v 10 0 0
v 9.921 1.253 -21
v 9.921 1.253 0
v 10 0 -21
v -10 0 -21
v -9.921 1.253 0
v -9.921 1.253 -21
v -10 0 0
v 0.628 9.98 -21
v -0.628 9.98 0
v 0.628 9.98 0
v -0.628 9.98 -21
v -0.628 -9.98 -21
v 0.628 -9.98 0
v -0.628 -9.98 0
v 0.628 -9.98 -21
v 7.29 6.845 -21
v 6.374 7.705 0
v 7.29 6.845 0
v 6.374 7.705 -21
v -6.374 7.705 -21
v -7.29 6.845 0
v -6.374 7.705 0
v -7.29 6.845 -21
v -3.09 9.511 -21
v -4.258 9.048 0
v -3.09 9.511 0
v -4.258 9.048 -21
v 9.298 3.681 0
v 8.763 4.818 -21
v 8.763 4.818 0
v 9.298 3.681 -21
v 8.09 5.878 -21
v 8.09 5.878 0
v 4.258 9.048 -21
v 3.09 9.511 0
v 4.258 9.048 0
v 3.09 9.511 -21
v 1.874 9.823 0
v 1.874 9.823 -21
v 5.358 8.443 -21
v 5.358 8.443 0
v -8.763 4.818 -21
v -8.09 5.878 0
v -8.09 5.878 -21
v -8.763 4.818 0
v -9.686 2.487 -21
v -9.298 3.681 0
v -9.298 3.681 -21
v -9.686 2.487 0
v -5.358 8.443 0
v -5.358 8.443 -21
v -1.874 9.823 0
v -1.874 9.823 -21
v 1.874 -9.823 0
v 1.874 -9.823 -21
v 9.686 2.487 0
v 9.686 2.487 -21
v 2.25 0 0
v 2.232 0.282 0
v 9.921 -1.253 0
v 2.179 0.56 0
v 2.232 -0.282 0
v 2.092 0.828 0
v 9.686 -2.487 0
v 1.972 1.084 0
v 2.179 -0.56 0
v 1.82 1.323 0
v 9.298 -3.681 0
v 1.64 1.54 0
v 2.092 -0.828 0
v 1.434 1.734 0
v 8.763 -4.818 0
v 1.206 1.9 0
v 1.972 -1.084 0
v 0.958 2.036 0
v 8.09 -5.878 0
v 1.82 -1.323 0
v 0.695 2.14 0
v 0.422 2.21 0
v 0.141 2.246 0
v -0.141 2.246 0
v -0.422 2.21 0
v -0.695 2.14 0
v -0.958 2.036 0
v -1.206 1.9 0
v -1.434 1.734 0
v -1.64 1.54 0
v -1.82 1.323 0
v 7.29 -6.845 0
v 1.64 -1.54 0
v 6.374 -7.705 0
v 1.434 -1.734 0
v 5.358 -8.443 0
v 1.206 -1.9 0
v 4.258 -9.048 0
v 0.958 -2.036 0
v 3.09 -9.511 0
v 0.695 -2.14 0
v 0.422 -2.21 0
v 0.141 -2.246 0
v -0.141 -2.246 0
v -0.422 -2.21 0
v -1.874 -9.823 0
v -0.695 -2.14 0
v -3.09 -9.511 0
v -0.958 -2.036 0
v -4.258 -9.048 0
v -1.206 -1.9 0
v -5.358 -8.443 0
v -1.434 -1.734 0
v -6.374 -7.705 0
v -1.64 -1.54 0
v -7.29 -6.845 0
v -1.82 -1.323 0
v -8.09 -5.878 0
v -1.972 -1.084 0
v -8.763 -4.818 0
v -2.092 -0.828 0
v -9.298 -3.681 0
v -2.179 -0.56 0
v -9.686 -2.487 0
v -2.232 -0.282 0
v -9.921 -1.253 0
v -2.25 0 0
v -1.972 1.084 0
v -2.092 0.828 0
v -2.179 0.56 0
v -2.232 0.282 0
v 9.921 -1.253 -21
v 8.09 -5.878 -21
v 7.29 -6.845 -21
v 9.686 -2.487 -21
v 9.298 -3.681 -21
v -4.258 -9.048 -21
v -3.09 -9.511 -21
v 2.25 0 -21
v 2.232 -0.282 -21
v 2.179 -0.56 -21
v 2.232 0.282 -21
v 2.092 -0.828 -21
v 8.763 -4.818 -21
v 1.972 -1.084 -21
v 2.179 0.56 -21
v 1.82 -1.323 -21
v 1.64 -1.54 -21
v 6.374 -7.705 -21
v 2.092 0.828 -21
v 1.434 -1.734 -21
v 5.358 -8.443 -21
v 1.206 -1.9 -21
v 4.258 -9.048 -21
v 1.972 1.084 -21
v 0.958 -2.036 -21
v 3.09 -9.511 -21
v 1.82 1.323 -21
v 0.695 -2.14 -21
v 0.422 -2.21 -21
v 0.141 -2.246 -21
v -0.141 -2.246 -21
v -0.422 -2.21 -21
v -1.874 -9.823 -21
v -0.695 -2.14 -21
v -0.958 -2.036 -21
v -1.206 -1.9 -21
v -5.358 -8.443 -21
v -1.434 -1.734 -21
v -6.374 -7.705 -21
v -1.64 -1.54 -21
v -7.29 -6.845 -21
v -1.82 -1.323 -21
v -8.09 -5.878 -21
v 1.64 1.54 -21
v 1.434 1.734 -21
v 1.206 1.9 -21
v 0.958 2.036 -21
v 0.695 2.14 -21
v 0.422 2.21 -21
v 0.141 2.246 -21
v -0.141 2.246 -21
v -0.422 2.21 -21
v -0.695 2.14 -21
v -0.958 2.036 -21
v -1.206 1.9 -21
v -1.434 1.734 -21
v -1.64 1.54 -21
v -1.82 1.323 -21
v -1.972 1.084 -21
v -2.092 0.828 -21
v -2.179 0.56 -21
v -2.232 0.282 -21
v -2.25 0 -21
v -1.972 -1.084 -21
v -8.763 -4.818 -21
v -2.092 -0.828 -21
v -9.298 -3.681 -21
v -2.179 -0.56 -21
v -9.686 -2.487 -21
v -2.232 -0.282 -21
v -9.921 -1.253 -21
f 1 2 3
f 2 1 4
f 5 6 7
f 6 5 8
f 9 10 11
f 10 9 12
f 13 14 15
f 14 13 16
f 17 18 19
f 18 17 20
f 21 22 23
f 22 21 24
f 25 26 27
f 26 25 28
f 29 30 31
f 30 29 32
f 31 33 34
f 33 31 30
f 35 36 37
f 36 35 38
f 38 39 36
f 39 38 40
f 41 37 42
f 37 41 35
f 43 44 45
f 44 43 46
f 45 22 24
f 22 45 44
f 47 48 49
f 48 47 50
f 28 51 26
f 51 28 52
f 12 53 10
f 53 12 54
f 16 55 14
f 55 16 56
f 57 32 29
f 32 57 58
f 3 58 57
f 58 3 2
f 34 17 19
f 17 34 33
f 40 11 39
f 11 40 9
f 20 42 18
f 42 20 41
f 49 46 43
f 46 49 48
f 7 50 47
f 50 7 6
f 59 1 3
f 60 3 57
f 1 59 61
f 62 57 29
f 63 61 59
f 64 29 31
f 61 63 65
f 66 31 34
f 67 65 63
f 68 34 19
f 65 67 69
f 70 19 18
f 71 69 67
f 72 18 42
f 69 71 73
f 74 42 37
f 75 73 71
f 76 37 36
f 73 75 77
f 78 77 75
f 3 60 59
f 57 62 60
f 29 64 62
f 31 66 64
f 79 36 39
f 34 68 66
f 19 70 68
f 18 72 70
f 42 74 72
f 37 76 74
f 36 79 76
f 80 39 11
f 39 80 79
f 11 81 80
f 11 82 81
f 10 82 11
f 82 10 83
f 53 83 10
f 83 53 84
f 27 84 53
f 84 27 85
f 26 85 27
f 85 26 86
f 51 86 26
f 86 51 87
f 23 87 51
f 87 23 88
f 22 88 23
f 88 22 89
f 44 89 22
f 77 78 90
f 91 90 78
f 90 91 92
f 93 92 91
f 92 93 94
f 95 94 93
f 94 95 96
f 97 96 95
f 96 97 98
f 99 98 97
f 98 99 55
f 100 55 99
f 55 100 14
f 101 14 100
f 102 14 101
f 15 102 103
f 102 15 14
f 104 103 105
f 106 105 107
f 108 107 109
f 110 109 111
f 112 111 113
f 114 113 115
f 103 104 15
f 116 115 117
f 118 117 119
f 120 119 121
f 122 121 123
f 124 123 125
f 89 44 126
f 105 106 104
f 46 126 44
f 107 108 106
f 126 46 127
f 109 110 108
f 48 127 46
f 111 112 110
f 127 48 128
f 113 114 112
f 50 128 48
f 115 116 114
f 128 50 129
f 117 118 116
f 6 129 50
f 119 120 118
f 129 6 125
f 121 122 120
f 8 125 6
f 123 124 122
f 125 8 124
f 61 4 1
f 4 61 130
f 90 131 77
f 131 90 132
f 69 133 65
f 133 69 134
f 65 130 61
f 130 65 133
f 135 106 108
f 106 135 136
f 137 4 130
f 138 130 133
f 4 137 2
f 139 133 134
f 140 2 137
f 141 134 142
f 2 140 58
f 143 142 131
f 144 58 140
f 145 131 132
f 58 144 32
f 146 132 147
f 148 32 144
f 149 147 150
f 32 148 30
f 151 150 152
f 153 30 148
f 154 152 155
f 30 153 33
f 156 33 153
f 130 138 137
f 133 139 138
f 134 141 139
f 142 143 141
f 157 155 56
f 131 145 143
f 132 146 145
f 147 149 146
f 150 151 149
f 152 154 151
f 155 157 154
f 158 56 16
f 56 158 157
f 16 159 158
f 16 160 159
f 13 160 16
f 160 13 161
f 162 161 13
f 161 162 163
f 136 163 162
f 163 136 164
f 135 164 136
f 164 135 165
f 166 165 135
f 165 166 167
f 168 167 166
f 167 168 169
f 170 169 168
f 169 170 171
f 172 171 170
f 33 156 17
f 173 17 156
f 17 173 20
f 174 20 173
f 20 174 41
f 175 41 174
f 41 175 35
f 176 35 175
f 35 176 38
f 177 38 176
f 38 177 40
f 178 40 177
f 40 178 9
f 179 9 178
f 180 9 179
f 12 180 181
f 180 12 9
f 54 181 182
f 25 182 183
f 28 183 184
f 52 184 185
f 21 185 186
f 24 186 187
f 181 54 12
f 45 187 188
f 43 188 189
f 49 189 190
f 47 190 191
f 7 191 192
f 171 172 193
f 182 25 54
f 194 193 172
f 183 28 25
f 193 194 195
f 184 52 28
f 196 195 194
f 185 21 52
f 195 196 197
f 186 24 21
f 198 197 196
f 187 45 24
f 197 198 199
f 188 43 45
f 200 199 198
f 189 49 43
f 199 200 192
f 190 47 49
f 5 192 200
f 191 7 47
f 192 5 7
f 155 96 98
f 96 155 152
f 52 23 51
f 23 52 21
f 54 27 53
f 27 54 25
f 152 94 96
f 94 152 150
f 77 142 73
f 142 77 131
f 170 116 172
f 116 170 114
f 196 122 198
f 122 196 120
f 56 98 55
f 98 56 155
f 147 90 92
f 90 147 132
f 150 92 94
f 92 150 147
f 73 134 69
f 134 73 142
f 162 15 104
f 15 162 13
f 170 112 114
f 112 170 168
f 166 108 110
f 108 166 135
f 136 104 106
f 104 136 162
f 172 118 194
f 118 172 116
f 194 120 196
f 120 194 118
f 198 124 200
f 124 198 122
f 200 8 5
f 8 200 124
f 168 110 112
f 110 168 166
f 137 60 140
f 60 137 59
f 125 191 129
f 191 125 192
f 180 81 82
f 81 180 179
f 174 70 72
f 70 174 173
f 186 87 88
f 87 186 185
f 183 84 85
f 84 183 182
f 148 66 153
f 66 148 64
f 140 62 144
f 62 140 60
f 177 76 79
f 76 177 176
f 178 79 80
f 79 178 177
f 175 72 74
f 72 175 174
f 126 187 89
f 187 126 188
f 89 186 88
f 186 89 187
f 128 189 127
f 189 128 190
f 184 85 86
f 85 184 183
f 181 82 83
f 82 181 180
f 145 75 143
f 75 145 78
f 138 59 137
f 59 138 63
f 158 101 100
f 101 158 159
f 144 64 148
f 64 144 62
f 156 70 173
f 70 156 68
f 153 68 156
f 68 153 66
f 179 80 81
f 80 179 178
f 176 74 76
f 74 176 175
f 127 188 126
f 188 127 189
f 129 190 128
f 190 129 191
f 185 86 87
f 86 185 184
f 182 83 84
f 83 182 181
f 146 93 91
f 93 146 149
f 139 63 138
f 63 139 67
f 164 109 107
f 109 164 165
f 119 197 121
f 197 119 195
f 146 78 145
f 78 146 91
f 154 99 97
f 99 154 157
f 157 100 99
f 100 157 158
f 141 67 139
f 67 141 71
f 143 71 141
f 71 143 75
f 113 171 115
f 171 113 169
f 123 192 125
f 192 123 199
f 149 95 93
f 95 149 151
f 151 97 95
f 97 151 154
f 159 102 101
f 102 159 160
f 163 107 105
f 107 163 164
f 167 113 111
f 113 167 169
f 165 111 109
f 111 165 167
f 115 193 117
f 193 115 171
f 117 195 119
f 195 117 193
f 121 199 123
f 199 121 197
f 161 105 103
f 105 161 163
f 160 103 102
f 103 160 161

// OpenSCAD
$fn = 50;


difference() {
	union() {
		translate(v = [0, 0, -21.0000000000]) {
			cylinder(h = 21, r = 10.0000000000);
		}
	}
	union() {
		#translate(v = [0, 0, -21]) {
			cylinder(h = 21, r = 2.2500000000);
		}
	}
}
